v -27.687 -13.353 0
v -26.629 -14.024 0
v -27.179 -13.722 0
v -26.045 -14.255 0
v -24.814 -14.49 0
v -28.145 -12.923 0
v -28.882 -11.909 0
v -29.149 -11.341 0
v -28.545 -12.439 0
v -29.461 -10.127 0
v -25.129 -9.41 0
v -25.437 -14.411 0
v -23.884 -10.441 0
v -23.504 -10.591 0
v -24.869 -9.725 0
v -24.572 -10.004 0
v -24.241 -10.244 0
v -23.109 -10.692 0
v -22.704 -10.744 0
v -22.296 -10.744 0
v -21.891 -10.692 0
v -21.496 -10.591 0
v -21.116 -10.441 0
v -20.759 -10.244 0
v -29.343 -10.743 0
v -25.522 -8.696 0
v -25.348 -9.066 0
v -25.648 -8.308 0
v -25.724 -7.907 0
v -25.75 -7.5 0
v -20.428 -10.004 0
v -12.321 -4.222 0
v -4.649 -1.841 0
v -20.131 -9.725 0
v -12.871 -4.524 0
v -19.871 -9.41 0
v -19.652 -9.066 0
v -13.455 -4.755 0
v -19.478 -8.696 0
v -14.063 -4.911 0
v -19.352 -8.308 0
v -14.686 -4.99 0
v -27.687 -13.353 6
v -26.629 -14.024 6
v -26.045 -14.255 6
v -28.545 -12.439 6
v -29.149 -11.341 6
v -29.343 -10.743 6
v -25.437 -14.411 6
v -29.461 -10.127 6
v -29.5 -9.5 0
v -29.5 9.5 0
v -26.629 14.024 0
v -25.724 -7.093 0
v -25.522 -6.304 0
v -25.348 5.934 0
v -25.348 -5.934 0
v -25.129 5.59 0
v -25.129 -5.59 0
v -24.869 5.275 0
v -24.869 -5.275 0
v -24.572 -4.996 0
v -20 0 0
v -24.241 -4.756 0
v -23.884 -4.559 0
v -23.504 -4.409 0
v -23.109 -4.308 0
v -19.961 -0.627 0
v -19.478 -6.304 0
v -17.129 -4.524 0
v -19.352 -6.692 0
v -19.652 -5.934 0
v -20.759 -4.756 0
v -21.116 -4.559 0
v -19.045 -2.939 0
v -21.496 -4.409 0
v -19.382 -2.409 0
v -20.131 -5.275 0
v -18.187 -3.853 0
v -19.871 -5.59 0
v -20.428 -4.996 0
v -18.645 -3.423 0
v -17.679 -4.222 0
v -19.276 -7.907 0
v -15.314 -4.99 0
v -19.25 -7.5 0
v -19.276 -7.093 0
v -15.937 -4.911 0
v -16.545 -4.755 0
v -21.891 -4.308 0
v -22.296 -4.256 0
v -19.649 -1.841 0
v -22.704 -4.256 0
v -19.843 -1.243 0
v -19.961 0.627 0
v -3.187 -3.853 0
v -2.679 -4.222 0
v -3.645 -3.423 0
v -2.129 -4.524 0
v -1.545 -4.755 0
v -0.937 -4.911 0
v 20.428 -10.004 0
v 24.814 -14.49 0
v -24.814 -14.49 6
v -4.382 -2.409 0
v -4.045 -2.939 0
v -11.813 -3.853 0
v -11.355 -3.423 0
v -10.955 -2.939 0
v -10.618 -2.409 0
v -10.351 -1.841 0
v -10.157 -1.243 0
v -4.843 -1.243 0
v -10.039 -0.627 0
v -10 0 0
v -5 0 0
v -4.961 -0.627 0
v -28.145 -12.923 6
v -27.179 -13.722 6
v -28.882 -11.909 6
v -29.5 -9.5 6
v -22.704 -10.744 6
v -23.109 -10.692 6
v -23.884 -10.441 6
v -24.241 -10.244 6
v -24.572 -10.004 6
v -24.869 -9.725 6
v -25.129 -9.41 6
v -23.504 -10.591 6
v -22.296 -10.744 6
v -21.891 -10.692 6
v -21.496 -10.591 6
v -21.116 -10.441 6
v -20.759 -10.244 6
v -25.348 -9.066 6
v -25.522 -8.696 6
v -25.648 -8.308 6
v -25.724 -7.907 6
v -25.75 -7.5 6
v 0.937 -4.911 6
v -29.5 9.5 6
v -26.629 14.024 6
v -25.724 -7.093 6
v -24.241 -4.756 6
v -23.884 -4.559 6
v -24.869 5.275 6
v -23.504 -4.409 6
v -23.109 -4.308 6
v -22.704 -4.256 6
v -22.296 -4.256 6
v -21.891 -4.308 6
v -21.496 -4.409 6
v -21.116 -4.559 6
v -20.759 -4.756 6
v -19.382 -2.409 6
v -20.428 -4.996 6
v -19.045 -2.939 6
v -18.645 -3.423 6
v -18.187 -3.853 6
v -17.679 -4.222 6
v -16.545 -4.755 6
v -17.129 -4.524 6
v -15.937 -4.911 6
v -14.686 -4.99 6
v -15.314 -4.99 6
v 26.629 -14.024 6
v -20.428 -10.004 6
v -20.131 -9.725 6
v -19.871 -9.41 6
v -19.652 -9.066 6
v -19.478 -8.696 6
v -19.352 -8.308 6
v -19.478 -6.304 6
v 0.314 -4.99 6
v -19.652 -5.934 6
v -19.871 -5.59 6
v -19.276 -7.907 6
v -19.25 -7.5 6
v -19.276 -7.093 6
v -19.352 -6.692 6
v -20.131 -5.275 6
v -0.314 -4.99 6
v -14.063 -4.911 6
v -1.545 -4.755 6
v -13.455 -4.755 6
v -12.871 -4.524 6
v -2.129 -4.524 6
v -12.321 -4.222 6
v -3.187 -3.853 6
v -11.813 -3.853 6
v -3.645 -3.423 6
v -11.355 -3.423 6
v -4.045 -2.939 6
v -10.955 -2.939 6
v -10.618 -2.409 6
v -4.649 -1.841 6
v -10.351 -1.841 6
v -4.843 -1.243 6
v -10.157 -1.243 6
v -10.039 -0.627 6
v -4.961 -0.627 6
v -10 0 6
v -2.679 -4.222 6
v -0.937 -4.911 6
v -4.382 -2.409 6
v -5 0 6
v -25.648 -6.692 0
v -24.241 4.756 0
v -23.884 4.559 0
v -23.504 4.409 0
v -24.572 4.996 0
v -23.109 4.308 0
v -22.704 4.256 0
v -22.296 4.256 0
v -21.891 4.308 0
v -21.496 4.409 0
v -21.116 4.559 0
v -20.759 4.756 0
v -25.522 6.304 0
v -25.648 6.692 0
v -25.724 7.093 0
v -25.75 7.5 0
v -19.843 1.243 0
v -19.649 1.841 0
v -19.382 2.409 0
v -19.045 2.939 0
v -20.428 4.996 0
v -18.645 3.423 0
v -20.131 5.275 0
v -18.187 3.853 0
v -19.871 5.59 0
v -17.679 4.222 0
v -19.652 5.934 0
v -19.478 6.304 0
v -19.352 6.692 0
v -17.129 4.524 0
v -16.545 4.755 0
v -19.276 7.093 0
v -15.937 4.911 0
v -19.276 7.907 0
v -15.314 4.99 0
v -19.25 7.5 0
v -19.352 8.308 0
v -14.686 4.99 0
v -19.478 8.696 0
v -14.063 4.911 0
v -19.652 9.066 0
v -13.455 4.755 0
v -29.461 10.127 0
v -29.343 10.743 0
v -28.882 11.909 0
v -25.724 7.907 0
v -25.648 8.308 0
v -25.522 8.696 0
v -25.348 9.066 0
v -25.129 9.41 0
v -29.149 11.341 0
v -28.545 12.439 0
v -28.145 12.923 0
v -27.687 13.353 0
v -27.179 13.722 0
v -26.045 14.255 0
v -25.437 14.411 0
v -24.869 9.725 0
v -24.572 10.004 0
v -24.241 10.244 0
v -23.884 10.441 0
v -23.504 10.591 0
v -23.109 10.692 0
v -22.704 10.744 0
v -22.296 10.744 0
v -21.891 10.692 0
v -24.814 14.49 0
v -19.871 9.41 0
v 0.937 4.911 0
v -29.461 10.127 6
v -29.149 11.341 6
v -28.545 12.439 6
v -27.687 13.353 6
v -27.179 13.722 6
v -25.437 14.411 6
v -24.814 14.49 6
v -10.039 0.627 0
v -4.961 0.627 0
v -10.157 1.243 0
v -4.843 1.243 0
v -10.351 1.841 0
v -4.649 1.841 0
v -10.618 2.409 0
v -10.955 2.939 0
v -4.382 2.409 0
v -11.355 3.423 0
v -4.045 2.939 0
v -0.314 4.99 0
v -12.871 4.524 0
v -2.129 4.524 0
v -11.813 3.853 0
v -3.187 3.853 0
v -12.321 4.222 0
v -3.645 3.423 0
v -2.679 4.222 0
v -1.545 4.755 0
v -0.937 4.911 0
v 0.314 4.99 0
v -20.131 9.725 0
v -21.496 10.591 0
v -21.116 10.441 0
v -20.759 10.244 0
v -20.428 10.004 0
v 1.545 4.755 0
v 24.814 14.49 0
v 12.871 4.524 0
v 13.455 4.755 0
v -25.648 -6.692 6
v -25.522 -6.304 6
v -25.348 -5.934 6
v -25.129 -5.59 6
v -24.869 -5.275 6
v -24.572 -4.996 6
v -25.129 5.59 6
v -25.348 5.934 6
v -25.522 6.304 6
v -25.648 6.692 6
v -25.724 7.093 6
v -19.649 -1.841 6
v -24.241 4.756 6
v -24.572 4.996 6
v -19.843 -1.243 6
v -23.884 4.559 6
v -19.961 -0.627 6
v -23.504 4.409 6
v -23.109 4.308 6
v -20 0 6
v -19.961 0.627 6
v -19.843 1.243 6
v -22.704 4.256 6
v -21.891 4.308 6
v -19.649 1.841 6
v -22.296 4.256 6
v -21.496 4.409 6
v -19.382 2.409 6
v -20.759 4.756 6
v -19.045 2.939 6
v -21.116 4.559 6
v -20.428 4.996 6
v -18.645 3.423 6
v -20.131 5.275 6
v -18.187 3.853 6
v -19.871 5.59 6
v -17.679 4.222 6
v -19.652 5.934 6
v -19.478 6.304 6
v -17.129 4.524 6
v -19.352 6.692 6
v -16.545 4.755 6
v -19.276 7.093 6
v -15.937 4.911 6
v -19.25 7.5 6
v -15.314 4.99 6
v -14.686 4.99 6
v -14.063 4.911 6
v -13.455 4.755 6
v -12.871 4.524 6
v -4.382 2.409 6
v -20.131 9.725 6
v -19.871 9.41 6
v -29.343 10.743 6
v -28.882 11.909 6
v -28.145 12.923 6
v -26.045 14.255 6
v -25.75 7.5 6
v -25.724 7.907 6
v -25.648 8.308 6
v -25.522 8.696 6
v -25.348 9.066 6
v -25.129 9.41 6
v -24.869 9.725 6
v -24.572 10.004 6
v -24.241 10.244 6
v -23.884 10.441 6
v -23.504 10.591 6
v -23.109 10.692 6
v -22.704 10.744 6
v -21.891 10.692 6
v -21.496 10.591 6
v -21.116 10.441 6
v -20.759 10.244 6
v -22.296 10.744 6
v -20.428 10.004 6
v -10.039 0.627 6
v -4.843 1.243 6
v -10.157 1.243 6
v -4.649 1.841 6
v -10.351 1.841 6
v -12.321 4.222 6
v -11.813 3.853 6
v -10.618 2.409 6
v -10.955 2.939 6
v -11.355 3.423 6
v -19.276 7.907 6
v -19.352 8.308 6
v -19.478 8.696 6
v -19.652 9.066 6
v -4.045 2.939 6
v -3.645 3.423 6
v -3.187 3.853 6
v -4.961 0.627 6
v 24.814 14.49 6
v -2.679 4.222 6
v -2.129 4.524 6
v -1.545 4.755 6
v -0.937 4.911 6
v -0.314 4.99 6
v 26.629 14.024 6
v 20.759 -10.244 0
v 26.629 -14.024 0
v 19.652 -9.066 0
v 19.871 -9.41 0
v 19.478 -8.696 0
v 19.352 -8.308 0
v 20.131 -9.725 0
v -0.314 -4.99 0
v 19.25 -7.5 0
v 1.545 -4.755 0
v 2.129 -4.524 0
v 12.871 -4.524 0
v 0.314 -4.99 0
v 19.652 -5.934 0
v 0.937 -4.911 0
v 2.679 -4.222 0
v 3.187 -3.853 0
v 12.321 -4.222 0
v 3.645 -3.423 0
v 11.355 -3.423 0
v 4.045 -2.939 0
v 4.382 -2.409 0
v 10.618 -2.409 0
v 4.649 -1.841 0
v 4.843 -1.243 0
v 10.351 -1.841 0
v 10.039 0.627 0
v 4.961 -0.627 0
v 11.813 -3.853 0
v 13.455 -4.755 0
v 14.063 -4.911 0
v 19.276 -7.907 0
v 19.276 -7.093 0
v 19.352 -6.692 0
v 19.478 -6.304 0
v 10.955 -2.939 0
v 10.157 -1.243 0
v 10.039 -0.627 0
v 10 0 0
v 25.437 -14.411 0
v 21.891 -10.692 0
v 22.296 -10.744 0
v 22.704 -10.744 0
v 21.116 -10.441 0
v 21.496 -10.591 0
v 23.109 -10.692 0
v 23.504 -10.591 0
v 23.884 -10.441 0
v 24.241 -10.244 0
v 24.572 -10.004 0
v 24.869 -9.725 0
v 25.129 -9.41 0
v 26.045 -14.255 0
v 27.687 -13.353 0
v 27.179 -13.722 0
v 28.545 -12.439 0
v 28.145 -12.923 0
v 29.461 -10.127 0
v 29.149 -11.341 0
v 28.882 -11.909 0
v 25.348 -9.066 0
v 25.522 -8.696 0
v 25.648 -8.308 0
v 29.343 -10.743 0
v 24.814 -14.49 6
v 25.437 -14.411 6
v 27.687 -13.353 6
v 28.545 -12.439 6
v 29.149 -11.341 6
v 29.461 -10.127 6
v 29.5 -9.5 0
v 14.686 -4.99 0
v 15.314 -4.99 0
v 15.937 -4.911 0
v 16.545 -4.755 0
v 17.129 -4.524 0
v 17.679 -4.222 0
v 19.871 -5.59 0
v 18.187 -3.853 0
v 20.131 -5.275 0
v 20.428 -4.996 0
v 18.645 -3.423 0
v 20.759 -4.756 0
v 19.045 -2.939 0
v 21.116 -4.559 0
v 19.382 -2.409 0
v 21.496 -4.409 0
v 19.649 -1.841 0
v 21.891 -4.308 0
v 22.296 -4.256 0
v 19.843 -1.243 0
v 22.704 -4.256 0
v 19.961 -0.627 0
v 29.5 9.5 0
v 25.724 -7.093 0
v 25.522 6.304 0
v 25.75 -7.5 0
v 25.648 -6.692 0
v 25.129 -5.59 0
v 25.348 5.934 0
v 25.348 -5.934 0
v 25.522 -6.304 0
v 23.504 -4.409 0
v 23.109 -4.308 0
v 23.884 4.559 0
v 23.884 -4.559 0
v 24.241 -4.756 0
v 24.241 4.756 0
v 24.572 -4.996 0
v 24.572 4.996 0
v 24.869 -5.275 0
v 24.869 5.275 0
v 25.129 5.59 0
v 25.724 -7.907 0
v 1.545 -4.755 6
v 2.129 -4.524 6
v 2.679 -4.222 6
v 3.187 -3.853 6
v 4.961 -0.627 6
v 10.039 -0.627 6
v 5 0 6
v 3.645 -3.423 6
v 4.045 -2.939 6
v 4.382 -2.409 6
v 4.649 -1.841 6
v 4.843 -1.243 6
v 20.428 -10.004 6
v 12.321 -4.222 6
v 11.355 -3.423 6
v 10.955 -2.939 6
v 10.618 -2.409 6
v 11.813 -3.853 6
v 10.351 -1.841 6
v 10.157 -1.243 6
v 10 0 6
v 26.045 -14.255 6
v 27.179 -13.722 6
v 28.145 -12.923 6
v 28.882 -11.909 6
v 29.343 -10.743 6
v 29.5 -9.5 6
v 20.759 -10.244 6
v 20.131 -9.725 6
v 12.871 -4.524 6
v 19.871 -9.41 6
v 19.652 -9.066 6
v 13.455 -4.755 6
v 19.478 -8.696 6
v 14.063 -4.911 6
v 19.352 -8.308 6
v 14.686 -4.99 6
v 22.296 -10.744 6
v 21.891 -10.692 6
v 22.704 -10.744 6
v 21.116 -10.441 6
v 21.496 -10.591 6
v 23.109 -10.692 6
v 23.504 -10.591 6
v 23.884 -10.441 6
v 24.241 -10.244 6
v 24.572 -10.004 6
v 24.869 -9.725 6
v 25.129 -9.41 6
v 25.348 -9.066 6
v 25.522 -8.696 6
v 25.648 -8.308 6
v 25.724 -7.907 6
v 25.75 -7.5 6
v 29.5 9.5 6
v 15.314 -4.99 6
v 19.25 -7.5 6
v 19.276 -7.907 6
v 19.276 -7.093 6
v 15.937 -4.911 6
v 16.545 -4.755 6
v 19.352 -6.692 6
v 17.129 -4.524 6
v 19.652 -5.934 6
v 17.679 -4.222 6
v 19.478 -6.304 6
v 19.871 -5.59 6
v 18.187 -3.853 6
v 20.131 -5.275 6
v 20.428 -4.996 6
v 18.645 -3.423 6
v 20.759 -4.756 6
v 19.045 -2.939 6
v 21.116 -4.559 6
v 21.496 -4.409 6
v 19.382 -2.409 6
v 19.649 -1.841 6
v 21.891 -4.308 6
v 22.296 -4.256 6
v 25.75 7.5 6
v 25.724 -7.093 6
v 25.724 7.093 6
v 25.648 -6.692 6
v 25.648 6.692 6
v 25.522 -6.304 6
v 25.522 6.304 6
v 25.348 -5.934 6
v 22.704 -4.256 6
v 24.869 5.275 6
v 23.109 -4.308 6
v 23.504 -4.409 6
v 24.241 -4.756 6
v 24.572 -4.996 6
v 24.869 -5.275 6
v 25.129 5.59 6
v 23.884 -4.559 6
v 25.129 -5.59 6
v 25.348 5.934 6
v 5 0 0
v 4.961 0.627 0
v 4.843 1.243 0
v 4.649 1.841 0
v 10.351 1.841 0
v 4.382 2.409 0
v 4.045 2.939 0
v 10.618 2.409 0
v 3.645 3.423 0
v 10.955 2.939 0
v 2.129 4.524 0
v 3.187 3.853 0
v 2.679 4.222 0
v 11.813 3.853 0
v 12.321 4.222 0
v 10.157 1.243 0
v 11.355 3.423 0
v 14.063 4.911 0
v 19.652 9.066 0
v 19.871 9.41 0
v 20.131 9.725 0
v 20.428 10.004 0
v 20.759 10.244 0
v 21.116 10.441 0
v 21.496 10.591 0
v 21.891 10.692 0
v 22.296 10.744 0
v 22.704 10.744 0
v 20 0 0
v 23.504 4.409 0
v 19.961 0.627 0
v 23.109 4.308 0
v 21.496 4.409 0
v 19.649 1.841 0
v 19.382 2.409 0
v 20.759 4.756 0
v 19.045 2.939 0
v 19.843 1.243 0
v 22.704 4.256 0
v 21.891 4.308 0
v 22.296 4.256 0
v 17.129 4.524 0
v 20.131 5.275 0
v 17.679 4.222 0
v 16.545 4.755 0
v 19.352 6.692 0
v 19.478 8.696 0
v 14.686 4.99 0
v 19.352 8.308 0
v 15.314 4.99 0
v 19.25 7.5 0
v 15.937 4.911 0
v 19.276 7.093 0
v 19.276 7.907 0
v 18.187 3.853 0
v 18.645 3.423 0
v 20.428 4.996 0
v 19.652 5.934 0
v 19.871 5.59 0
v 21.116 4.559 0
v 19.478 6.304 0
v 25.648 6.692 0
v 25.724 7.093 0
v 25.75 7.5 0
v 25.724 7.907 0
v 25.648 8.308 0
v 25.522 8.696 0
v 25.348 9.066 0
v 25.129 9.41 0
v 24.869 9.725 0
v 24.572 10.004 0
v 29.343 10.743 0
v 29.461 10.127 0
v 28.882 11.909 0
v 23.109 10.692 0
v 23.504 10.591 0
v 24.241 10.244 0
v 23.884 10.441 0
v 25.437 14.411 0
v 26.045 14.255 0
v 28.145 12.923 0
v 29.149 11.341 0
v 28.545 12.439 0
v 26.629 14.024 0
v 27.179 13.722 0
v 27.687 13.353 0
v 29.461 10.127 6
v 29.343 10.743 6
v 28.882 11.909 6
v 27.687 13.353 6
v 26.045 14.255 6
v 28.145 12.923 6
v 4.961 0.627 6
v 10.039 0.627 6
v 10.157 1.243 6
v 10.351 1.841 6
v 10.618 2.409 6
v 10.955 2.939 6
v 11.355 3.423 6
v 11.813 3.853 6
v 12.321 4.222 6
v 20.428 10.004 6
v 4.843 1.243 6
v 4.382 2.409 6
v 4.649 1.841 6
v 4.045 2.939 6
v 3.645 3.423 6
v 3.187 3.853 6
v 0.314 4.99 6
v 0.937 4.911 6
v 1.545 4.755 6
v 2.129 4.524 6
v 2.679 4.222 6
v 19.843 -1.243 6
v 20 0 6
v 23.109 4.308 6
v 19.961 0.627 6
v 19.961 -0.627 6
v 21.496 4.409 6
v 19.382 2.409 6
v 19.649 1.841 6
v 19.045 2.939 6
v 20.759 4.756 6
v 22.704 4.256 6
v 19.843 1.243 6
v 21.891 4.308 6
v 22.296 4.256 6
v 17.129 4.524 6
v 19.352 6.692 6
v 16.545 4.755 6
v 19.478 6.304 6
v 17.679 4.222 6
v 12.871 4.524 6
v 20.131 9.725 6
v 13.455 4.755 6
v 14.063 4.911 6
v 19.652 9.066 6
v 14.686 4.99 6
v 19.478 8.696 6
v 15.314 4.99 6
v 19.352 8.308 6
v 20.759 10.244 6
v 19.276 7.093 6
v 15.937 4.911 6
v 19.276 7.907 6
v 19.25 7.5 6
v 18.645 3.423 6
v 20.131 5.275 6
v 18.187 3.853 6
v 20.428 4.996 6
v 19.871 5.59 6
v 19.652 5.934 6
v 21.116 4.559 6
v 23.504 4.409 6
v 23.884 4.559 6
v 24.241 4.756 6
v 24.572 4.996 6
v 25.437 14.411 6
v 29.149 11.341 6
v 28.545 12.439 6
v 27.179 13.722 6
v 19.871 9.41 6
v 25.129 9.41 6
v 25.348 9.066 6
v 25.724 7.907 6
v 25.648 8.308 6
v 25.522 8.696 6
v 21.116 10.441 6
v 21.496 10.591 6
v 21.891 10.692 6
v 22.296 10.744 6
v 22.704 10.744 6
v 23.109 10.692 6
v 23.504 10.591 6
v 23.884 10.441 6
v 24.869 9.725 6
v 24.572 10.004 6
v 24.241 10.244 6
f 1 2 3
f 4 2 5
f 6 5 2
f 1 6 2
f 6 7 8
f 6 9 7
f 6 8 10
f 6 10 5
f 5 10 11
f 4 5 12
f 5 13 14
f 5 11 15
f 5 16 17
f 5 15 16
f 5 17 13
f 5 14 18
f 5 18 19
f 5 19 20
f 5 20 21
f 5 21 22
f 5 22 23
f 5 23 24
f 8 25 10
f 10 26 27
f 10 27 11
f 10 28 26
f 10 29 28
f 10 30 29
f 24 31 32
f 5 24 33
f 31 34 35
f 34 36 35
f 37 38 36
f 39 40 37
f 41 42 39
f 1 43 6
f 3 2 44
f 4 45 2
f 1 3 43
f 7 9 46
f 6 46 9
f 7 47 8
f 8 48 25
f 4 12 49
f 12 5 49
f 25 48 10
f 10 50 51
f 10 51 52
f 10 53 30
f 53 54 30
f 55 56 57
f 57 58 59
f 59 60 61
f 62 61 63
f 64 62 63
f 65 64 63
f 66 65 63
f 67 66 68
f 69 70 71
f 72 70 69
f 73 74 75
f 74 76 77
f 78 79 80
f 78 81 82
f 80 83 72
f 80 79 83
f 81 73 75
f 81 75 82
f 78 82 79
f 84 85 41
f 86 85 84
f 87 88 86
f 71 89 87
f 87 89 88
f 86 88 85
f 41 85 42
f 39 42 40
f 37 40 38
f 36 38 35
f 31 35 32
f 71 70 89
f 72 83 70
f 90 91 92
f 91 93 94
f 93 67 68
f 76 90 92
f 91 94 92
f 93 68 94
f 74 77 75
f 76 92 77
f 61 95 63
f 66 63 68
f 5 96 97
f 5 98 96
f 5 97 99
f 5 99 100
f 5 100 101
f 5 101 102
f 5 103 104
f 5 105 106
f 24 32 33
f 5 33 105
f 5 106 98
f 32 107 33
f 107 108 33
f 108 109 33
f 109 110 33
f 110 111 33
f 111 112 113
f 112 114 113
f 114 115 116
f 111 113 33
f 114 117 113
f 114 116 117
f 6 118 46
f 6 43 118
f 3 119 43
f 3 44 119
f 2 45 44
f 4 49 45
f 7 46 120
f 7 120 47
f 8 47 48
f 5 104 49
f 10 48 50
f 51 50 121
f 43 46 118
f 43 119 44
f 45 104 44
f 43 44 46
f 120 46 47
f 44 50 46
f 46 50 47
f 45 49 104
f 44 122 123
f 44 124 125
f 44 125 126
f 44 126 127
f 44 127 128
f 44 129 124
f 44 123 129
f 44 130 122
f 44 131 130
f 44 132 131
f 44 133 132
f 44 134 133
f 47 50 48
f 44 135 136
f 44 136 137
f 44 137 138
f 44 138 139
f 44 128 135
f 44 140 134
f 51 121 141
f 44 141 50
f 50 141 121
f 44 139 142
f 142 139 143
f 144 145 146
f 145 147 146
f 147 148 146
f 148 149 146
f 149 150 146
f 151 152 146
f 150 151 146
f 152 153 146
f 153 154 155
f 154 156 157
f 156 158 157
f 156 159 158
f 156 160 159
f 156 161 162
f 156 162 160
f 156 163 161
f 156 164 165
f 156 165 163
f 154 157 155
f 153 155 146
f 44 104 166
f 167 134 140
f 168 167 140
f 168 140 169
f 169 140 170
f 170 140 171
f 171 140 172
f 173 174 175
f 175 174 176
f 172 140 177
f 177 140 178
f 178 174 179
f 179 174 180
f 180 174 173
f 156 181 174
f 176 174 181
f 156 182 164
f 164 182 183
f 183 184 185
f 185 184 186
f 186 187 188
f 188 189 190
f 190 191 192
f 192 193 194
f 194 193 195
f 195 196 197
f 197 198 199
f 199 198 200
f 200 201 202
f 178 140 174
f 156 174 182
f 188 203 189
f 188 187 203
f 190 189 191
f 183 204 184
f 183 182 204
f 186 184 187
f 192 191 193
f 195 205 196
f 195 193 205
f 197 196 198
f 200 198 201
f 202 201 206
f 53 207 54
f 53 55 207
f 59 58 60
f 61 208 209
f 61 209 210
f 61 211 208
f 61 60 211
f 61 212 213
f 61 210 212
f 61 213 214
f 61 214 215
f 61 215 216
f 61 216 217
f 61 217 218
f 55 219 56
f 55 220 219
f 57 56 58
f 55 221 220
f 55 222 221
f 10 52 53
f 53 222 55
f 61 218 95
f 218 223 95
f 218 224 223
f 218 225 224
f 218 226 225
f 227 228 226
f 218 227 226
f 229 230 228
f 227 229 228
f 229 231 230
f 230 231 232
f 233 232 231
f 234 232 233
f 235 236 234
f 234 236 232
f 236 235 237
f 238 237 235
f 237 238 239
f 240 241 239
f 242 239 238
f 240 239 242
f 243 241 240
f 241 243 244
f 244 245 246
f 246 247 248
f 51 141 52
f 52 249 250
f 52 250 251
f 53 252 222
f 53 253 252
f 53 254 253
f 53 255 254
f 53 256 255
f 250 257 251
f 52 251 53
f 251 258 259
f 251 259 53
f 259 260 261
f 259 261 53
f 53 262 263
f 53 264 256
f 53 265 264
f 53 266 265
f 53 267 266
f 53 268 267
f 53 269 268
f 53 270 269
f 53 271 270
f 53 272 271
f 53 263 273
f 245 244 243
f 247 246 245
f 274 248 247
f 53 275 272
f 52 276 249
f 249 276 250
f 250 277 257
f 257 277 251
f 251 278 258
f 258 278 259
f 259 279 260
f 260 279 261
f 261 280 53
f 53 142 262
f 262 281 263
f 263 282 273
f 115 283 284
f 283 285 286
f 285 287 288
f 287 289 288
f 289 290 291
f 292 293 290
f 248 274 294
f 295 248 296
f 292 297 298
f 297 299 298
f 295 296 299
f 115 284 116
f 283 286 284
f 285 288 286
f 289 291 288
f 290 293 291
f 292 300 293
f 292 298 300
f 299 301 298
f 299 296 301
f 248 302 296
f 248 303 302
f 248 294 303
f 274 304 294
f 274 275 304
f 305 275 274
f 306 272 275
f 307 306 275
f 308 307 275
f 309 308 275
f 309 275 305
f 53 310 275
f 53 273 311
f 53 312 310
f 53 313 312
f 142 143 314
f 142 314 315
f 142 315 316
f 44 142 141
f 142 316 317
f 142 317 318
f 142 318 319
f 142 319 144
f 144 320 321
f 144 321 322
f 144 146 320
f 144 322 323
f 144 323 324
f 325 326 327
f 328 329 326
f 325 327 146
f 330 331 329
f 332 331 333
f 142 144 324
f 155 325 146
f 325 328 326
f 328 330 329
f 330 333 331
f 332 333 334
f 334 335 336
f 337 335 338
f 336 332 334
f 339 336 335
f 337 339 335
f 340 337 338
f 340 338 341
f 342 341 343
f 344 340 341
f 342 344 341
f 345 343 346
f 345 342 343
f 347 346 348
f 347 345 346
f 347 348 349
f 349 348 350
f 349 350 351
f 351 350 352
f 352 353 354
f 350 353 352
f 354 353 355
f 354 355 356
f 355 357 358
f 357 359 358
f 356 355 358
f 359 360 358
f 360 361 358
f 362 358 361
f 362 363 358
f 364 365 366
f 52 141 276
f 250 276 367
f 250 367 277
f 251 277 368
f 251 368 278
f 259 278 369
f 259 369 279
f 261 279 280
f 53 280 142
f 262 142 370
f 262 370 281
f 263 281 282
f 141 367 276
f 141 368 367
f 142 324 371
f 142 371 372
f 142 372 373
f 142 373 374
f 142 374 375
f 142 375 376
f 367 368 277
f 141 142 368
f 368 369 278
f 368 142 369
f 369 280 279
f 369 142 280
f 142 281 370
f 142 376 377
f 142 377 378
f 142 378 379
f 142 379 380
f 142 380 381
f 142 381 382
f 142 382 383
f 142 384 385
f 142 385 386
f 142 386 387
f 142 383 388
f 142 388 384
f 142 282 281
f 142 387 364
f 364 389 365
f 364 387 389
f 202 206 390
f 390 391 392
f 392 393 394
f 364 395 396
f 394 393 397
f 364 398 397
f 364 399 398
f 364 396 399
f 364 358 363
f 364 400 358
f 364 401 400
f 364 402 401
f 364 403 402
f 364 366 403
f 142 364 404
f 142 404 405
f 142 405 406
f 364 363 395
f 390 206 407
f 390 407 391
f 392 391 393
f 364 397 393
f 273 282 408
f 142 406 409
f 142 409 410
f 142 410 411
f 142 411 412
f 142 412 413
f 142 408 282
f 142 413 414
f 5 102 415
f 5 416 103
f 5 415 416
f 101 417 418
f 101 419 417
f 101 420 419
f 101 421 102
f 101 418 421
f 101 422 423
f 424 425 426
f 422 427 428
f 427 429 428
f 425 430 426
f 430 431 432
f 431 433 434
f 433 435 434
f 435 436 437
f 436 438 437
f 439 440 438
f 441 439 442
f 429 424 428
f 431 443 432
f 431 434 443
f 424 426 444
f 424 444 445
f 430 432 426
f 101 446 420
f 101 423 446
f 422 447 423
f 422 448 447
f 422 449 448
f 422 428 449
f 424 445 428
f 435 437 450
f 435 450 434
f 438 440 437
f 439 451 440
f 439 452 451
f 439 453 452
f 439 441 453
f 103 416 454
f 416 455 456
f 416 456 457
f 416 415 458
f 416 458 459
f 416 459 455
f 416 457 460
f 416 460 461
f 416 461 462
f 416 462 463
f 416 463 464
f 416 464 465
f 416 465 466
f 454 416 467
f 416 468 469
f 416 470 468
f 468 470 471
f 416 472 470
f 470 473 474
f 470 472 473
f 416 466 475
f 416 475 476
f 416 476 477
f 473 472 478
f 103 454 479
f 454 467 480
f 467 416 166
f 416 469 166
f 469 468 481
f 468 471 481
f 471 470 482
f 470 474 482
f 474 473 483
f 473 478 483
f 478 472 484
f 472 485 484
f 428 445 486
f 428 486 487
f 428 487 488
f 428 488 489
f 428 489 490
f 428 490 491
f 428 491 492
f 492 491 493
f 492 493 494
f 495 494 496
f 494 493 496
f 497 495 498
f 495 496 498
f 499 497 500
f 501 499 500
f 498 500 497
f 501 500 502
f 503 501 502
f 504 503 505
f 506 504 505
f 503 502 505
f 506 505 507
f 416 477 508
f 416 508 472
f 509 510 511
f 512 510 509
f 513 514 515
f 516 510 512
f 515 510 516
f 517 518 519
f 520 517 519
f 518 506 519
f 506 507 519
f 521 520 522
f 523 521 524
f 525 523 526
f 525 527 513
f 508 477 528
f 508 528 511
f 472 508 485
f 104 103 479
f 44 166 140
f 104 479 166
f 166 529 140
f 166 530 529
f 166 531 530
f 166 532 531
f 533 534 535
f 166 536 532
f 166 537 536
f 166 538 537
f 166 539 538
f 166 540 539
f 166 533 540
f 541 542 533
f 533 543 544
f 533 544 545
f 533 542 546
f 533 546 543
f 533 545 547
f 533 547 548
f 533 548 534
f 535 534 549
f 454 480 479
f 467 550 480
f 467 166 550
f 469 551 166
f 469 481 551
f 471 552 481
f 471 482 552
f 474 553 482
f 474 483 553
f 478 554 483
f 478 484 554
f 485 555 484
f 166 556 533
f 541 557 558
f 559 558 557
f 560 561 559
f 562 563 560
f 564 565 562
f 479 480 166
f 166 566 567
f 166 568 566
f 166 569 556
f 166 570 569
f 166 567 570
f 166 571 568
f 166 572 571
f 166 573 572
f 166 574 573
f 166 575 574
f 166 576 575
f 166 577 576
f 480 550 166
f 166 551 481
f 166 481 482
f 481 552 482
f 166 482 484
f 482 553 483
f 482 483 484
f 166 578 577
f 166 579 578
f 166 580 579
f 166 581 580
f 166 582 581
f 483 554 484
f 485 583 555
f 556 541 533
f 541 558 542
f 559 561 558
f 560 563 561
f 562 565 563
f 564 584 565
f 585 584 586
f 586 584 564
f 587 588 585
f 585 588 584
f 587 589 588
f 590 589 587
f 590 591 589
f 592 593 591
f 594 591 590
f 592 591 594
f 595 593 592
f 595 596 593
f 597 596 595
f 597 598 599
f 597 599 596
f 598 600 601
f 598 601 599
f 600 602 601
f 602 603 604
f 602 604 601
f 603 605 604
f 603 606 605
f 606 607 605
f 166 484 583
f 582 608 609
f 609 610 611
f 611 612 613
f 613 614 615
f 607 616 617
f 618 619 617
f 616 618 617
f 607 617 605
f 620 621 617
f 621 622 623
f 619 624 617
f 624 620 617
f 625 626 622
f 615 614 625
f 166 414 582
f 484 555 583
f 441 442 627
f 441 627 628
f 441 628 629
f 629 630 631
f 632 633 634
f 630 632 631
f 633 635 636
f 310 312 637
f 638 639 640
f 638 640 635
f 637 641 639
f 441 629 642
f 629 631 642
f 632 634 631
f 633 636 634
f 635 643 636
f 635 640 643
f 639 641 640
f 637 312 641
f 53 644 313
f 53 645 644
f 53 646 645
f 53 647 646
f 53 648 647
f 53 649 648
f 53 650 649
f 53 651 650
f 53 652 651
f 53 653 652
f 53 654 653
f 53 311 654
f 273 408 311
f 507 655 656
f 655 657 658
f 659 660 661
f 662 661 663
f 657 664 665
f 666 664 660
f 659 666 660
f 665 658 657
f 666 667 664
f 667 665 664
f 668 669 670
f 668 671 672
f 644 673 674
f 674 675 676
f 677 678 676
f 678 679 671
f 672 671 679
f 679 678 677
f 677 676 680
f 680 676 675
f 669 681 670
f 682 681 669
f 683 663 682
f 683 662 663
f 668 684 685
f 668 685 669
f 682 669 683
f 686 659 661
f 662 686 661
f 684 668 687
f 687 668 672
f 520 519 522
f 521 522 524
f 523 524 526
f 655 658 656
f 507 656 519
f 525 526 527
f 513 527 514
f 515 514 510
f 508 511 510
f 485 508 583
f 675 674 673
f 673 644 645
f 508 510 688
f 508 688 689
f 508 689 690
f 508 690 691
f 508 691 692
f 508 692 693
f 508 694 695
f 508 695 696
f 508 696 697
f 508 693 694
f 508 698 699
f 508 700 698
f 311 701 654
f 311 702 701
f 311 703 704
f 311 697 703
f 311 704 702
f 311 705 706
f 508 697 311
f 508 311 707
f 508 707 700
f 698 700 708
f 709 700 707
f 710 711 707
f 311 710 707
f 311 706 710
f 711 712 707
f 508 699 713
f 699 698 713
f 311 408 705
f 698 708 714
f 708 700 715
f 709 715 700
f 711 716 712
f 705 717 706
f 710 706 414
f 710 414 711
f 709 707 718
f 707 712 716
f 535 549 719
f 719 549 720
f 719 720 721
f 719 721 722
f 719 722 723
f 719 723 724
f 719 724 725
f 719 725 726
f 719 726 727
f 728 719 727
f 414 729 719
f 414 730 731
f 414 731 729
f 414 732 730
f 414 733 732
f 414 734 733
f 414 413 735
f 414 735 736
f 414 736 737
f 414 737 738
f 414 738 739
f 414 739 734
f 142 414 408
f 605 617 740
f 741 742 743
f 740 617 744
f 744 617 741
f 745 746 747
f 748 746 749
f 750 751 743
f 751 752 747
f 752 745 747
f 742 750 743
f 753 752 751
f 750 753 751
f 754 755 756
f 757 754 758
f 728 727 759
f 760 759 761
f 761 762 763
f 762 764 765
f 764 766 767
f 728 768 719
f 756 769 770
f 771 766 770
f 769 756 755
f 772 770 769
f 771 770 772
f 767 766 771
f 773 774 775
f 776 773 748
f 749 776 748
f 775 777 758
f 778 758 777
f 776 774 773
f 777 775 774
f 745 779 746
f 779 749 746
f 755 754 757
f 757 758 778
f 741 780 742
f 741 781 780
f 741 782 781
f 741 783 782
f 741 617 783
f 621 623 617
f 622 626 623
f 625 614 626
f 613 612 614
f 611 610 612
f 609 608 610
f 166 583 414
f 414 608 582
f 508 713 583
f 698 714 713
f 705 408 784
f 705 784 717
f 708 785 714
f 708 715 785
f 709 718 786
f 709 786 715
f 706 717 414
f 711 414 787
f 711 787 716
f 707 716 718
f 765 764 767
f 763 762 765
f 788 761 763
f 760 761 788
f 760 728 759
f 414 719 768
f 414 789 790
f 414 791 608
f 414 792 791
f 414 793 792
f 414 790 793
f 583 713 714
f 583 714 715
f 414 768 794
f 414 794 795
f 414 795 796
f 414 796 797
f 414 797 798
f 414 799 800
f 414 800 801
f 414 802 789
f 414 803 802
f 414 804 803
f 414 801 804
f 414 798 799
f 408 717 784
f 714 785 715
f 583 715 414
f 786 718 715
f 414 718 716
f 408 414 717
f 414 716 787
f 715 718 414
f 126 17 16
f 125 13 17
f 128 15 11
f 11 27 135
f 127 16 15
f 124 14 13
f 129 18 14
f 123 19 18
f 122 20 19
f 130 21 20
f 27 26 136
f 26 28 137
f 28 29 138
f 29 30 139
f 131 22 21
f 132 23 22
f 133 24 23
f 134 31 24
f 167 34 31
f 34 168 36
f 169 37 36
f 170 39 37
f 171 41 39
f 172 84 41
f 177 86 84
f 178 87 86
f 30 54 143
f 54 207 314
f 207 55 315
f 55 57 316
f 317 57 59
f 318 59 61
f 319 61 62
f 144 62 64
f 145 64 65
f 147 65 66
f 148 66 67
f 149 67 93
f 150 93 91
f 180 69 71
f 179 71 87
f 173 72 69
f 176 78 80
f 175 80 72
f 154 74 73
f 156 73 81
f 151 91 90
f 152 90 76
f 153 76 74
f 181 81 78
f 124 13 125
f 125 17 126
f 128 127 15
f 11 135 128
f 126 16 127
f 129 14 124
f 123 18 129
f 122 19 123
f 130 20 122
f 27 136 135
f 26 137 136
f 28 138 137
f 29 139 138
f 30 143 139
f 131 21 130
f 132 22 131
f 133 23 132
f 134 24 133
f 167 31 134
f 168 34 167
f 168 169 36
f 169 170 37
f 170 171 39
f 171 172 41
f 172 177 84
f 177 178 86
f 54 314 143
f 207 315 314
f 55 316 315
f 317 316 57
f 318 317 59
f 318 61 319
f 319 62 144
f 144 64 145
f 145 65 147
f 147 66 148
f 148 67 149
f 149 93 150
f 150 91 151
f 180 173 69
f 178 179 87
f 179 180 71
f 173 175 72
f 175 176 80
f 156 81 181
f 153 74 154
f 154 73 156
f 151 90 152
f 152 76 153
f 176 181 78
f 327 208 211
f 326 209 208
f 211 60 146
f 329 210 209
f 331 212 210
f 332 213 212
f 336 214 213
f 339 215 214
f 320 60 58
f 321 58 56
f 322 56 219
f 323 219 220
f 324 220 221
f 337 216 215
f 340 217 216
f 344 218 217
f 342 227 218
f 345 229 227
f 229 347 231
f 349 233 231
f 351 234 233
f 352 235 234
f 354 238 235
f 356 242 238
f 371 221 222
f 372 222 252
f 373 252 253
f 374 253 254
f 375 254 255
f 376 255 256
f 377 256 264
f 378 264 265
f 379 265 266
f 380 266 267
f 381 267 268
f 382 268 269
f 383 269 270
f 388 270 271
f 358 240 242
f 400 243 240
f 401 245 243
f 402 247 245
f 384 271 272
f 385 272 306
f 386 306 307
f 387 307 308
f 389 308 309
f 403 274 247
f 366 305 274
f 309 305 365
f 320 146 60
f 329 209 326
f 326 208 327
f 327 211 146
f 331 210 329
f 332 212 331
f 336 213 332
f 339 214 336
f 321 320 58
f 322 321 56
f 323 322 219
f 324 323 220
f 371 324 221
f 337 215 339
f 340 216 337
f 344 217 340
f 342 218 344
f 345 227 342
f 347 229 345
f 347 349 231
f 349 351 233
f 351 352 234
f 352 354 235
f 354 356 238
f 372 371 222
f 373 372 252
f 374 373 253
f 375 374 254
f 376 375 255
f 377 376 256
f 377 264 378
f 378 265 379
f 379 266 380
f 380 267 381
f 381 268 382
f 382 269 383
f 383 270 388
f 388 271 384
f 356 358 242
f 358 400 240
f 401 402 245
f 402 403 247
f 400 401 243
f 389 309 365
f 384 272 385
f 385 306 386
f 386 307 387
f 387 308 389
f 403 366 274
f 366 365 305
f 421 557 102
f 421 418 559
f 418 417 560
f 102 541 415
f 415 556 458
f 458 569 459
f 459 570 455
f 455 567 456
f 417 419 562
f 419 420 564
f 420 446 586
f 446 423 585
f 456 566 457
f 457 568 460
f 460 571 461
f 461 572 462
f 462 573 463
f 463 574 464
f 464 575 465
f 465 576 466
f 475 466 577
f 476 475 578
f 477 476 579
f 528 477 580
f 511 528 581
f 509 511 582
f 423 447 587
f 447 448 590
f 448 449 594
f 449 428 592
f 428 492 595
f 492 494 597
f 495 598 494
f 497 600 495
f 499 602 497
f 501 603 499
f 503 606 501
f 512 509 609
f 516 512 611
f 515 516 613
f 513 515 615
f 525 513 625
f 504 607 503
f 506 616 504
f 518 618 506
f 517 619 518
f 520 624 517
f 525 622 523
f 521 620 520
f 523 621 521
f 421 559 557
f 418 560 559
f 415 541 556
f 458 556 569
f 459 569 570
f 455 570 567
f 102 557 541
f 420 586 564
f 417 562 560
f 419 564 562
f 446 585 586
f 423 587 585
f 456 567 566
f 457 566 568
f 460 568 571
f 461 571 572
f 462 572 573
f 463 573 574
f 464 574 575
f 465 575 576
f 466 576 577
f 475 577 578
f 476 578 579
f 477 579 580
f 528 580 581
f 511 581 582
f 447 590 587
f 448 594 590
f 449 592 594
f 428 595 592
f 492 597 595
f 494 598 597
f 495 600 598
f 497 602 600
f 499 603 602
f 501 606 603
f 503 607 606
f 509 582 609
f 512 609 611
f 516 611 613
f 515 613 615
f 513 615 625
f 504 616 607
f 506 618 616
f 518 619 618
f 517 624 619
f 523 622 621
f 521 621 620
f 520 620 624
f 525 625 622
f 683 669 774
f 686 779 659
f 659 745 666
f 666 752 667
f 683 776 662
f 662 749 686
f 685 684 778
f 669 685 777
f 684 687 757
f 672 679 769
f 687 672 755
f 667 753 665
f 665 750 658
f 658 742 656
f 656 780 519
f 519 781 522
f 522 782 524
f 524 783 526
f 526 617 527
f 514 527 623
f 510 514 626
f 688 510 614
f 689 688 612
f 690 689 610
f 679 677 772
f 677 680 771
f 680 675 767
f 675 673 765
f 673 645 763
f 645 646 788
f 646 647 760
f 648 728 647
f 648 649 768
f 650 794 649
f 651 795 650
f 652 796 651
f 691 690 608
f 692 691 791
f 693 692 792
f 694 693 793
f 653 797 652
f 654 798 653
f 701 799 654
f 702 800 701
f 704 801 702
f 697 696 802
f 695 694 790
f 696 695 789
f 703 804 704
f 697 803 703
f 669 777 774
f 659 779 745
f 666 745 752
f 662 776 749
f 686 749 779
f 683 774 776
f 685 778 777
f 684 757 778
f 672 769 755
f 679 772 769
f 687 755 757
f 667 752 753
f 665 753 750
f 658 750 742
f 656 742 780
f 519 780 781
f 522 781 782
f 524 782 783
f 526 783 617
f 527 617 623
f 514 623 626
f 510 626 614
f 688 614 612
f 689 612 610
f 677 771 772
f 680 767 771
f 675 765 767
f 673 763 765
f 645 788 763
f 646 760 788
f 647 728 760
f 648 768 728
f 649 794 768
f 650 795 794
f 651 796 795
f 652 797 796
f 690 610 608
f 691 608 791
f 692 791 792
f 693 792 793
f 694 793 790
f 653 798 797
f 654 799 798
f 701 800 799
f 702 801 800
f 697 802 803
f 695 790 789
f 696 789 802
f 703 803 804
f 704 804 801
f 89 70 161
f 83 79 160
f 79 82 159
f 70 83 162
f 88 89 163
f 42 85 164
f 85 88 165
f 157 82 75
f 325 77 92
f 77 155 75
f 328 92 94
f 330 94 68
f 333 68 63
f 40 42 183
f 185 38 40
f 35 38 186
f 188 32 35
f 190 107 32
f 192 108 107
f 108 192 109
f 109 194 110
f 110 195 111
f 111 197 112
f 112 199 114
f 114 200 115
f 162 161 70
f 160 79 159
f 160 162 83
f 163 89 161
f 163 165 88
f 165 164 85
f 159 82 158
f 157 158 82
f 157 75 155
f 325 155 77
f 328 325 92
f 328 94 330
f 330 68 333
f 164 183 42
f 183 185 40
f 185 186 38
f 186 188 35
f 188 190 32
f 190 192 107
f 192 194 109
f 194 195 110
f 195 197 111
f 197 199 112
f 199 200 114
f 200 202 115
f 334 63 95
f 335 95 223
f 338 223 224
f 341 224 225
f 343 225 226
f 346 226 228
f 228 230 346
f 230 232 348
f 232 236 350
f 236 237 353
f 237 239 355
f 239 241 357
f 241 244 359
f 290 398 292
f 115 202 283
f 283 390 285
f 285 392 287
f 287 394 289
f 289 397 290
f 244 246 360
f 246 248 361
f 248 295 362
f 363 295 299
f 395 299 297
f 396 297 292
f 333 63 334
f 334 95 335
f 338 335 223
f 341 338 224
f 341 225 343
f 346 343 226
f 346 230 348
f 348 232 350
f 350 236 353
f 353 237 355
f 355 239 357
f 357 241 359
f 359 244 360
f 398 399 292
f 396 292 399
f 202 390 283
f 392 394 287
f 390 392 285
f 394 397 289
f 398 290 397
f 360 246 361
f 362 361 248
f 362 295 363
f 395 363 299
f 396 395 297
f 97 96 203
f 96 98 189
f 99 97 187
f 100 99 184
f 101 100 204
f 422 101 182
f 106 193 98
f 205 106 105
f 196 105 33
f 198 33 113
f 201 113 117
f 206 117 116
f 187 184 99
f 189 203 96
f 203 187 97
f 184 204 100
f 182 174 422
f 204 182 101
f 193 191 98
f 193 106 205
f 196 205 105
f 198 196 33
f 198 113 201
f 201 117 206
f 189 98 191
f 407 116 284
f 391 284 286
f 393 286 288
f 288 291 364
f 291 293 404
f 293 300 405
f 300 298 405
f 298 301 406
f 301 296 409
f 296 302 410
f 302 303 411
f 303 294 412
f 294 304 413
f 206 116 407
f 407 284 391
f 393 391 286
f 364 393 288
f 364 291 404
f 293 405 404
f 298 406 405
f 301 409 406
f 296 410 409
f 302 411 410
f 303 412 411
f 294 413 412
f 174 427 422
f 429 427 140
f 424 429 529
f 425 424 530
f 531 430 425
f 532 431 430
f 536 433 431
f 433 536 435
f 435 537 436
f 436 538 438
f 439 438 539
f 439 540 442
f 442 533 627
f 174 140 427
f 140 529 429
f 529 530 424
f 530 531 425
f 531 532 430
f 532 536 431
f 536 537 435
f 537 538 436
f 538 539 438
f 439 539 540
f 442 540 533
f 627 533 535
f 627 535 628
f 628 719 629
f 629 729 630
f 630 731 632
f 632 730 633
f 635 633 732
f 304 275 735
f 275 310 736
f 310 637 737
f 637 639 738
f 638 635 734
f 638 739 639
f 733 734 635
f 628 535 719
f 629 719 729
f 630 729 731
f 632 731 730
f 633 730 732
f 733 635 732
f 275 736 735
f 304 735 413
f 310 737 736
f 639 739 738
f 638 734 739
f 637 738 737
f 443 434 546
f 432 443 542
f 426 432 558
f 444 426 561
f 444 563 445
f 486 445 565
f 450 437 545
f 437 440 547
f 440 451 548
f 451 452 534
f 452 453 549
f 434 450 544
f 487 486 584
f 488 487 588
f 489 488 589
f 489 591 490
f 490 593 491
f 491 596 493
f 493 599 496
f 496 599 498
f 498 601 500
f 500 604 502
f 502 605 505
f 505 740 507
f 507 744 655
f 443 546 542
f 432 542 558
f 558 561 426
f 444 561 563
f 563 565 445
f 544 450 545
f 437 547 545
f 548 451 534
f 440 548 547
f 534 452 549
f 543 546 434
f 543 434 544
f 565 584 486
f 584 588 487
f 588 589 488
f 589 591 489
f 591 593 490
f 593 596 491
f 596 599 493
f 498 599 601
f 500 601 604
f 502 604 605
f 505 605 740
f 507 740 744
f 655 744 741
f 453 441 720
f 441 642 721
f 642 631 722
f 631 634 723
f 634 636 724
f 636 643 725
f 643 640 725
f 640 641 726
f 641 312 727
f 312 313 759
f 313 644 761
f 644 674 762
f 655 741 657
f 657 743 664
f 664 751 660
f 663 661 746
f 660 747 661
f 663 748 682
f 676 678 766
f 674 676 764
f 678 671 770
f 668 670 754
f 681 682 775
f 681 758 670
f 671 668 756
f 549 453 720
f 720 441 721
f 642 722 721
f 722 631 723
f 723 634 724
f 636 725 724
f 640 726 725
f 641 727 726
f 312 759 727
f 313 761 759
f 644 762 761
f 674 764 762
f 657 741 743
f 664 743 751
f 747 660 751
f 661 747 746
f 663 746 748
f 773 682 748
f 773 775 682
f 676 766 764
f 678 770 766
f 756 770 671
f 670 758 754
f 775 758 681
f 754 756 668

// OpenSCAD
$fn = 50;

difference() {
	union() {
		hull() {
			translate(v = [-24.5, 9.5, 0]) {
				cylinder(h = 6, r = 5);
			}
			translate(v = [24.5, 9.5, 0]) {
				cylinder(h = 6, r = 5);
			}
			translate(v = [-24.5, -9.5, 0]) {
				cylinder(h = 6, r = 5);
			}
			translate(v = [24.5, -9.5, 0]) {
				cylinder(h = 6, r = 5);
			}
		}
	}
	union() {
		translate(v = [-22.5, -7.5, -100.0]) {
			cylinder(h = 200, r = 3.25);
		}
		translate(v = [-22.5, 7.5, -100.0]) {
			cylinder(h = 200, r = 3.25);
		}
		translate(v = [22.5, -7.5, -100.0]) {
			cylinder(h = 200, r = 3.25);
		}
		translate(v = [22.5, 7.5, -100.0]) {
			cylinder(h = 200, r = 3.25);
		}
		translate(v = [-22.5, -7.5, -100.0]) {
			cylinder(h = 200, r = 1.8);
		}
		translate(v = [-22.5, 7.5, -100.0]) {
			cylinder(h = 200, r = 1.8);
		}
		translate(v = [22.5, -7.5, -100.0]) {
			cylinder(h = 200, r = 1.8);
		}
		translate(v = [22.5, 7.5, -100.0]) {
			cylinder(h = 200, r = 1.8);
		}
		translate(v = [-15.0, 0, 0.0]) {
			cylinder(h = 6, r = 5.0);
		}
		cylinder(h = 6, r = 5.0);
		translate(v = [15.0, 0, 0.0]) {
			cylinder(h = 6, r = 5.0);
		}
	}
}
